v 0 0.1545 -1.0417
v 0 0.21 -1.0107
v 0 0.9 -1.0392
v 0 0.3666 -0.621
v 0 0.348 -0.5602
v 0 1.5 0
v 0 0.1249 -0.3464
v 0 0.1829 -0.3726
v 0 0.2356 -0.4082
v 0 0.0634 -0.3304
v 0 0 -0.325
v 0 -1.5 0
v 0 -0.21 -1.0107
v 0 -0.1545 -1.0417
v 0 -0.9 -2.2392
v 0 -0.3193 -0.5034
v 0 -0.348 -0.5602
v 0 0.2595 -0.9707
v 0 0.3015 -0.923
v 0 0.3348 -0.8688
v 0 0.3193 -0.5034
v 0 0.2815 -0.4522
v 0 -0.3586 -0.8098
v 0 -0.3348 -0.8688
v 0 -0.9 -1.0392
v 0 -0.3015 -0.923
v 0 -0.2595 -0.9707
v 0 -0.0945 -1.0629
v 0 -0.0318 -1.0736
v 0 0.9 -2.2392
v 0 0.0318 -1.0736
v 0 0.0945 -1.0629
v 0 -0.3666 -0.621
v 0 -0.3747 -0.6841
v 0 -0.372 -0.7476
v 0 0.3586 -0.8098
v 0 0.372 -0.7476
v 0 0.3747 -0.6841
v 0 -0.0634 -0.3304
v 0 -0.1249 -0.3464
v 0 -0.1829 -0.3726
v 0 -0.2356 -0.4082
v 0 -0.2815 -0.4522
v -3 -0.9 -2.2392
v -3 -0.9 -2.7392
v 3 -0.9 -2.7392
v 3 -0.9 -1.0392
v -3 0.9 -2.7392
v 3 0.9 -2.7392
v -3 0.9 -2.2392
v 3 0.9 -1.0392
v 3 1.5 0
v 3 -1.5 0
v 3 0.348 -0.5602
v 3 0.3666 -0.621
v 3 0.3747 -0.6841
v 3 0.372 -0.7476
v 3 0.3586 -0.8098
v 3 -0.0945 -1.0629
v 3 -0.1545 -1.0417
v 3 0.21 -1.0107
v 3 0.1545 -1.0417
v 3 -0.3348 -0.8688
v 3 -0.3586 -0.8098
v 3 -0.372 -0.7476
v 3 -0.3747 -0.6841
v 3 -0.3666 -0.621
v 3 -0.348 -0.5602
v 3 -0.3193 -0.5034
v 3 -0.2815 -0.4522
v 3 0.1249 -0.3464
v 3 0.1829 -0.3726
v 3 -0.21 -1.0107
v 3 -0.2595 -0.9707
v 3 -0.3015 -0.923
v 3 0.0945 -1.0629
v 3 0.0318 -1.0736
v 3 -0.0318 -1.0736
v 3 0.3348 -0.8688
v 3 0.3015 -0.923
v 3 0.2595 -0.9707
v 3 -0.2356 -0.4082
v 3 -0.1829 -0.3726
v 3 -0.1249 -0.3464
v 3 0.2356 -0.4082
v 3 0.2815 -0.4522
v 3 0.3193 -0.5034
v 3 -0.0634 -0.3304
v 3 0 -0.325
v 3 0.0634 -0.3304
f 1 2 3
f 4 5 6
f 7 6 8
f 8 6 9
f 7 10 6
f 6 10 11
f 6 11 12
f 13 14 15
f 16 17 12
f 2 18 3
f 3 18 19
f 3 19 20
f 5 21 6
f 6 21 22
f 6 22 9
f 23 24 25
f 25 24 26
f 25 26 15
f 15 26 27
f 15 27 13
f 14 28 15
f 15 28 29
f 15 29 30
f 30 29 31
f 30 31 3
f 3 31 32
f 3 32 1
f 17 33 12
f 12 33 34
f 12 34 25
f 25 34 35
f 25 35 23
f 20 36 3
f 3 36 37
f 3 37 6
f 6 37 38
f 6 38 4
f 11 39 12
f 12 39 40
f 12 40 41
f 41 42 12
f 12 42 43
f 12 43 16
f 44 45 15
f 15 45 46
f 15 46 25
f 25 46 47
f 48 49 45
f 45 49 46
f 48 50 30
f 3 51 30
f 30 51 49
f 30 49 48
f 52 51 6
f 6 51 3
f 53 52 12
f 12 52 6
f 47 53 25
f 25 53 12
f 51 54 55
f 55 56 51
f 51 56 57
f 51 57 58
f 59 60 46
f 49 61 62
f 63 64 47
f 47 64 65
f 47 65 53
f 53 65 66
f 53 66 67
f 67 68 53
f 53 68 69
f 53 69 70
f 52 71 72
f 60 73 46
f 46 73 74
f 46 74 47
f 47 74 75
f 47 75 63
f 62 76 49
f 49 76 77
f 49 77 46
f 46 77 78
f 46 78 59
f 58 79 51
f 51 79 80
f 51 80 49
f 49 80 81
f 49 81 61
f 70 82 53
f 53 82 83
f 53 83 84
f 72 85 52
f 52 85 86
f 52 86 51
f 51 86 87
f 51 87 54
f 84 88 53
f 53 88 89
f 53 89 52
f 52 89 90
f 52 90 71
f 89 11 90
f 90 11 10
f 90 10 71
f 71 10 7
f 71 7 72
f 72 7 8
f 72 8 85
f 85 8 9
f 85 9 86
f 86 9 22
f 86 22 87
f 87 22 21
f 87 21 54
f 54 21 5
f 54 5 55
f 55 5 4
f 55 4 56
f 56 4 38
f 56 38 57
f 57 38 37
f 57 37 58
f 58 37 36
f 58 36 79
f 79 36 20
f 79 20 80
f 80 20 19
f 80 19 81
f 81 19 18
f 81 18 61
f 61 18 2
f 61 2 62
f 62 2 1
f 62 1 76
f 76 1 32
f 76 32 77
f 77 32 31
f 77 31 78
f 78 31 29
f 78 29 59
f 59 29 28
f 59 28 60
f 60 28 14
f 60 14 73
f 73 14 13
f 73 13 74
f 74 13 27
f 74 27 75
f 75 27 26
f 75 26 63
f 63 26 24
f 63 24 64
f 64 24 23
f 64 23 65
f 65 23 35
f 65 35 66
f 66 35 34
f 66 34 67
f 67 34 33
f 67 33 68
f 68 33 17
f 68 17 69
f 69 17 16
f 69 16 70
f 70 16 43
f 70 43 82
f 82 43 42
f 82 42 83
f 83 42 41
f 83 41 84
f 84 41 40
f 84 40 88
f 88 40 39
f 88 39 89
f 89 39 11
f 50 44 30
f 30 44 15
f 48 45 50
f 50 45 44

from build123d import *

# Parameters (mm, degrees)
BOSS_EXTRUDE1_DEPTH    = 3
M1X0_25_TAPPED_HOLE1_D = 0.75
SKETCH1_5_W            = 0.5
SKETCH1_5_H            = 1.8
BOSS_EXTRUDE2_DEPTH    = 3


with BuildPart() as part:
    # Sketch1 → Boss-Extrude1 (new body)
    with BuildSketch(Plane(origin=(0, 0, 0), x_dir=(0, 0, -1), z_dir=(1, 0, 0))):
        Polygon((0, 1.5), (0, -1.5), (1.039230485, -0.9), (2.739230485, -0.9), (2.739230485, 0.9), (1.039230485, 0.9), align=None)
    extrude(amount=BOSS_EXTRUDE1_DEPTH)

    # M1x0.25 Tapped Hole1 (through all)
    with Locations(Plane.ZY):
        with Locations((-0.7, 0)):
            Hole(M1X0_25_TAPPED_HOLE1_D / 2)

    # Sketch1<5> → Boss-Extrude2 (add)
    with BuildSketch(Plane(origin=(0, 0, 0), x_dir=(0, 0, -1), z_dir=(1, 0, 0))):
        with Locations((2.489230485, 0)):
            Rectangle(SKETCH1_5_W, SKETCH1_5_H)
    extrude(amount=-BOSS_EXTRUDE2_DEPTH)


solid = part.part
